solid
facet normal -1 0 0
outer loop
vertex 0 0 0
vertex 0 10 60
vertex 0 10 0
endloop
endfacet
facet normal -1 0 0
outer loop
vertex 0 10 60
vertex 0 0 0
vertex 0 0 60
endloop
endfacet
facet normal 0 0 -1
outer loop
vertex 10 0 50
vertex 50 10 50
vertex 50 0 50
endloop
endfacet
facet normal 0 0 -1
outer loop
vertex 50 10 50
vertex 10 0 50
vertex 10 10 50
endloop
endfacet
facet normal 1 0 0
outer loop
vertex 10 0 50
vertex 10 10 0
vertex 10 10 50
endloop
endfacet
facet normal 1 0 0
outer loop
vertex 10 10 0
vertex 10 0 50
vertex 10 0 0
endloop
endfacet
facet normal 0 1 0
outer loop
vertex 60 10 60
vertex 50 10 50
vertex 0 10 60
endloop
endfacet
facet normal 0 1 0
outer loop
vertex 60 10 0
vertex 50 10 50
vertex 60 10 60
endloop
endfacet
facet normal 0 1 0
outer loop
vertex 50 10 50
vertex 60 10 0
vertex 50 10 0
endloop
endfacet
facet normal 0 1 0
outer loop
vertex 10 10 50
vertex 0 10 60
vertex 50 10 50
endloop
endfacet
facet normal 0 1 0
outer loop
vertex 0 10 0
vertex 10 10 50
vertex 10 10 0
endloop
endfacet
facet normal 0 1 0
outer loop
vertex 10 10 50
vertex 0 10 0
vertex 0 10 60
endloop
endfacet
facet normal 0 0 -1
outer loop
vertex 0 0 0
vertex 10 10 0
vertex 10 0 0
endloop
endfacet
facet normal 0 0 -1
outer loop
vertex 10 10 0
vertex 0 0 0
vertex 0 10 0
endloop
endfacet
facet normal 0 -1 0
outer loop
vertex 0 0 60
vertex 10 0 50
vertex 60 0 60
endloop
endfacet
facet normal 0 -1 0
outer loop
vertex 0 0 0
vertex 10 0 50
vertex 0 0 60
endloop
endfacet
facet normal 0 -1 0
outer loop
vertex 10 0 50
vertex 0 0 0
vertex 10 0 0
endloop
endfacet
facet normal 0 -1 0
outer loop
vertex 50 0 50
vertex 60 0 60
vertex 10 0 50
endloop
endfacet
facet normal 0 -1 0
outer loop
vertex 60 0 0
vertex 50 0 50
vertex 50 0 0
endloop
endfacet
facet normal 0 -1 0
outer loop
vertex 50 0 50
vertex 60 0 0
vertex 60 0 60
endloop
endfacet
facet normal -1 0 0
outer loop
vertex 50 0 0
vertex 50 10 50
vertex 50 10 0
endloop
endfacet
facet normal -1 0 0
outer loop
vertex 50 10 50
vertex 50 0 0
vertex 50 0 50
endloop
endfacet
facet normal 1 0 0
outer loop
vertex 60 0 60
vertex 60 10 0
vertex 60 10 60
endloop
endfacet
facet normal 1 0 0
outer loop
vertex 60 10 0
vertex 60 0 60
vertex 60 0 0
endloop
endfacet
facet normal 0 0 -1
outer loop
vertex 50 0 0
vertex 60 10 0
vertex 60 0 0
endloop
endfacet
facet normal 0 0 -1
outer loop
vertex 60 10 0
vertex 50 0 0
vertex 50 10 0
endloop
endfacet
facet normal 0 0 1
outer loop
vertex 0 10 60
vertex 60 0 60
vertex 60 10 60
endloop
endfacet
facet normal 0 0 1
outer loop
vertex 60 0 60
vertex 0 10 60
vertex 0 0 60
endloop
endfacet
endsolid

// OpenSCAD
cube([10, 10, 50]);
translate([50, 0, 0])
cube([10, 10, 50]);

translate([0, 0, 50])
cube([60, 10, 10]);
